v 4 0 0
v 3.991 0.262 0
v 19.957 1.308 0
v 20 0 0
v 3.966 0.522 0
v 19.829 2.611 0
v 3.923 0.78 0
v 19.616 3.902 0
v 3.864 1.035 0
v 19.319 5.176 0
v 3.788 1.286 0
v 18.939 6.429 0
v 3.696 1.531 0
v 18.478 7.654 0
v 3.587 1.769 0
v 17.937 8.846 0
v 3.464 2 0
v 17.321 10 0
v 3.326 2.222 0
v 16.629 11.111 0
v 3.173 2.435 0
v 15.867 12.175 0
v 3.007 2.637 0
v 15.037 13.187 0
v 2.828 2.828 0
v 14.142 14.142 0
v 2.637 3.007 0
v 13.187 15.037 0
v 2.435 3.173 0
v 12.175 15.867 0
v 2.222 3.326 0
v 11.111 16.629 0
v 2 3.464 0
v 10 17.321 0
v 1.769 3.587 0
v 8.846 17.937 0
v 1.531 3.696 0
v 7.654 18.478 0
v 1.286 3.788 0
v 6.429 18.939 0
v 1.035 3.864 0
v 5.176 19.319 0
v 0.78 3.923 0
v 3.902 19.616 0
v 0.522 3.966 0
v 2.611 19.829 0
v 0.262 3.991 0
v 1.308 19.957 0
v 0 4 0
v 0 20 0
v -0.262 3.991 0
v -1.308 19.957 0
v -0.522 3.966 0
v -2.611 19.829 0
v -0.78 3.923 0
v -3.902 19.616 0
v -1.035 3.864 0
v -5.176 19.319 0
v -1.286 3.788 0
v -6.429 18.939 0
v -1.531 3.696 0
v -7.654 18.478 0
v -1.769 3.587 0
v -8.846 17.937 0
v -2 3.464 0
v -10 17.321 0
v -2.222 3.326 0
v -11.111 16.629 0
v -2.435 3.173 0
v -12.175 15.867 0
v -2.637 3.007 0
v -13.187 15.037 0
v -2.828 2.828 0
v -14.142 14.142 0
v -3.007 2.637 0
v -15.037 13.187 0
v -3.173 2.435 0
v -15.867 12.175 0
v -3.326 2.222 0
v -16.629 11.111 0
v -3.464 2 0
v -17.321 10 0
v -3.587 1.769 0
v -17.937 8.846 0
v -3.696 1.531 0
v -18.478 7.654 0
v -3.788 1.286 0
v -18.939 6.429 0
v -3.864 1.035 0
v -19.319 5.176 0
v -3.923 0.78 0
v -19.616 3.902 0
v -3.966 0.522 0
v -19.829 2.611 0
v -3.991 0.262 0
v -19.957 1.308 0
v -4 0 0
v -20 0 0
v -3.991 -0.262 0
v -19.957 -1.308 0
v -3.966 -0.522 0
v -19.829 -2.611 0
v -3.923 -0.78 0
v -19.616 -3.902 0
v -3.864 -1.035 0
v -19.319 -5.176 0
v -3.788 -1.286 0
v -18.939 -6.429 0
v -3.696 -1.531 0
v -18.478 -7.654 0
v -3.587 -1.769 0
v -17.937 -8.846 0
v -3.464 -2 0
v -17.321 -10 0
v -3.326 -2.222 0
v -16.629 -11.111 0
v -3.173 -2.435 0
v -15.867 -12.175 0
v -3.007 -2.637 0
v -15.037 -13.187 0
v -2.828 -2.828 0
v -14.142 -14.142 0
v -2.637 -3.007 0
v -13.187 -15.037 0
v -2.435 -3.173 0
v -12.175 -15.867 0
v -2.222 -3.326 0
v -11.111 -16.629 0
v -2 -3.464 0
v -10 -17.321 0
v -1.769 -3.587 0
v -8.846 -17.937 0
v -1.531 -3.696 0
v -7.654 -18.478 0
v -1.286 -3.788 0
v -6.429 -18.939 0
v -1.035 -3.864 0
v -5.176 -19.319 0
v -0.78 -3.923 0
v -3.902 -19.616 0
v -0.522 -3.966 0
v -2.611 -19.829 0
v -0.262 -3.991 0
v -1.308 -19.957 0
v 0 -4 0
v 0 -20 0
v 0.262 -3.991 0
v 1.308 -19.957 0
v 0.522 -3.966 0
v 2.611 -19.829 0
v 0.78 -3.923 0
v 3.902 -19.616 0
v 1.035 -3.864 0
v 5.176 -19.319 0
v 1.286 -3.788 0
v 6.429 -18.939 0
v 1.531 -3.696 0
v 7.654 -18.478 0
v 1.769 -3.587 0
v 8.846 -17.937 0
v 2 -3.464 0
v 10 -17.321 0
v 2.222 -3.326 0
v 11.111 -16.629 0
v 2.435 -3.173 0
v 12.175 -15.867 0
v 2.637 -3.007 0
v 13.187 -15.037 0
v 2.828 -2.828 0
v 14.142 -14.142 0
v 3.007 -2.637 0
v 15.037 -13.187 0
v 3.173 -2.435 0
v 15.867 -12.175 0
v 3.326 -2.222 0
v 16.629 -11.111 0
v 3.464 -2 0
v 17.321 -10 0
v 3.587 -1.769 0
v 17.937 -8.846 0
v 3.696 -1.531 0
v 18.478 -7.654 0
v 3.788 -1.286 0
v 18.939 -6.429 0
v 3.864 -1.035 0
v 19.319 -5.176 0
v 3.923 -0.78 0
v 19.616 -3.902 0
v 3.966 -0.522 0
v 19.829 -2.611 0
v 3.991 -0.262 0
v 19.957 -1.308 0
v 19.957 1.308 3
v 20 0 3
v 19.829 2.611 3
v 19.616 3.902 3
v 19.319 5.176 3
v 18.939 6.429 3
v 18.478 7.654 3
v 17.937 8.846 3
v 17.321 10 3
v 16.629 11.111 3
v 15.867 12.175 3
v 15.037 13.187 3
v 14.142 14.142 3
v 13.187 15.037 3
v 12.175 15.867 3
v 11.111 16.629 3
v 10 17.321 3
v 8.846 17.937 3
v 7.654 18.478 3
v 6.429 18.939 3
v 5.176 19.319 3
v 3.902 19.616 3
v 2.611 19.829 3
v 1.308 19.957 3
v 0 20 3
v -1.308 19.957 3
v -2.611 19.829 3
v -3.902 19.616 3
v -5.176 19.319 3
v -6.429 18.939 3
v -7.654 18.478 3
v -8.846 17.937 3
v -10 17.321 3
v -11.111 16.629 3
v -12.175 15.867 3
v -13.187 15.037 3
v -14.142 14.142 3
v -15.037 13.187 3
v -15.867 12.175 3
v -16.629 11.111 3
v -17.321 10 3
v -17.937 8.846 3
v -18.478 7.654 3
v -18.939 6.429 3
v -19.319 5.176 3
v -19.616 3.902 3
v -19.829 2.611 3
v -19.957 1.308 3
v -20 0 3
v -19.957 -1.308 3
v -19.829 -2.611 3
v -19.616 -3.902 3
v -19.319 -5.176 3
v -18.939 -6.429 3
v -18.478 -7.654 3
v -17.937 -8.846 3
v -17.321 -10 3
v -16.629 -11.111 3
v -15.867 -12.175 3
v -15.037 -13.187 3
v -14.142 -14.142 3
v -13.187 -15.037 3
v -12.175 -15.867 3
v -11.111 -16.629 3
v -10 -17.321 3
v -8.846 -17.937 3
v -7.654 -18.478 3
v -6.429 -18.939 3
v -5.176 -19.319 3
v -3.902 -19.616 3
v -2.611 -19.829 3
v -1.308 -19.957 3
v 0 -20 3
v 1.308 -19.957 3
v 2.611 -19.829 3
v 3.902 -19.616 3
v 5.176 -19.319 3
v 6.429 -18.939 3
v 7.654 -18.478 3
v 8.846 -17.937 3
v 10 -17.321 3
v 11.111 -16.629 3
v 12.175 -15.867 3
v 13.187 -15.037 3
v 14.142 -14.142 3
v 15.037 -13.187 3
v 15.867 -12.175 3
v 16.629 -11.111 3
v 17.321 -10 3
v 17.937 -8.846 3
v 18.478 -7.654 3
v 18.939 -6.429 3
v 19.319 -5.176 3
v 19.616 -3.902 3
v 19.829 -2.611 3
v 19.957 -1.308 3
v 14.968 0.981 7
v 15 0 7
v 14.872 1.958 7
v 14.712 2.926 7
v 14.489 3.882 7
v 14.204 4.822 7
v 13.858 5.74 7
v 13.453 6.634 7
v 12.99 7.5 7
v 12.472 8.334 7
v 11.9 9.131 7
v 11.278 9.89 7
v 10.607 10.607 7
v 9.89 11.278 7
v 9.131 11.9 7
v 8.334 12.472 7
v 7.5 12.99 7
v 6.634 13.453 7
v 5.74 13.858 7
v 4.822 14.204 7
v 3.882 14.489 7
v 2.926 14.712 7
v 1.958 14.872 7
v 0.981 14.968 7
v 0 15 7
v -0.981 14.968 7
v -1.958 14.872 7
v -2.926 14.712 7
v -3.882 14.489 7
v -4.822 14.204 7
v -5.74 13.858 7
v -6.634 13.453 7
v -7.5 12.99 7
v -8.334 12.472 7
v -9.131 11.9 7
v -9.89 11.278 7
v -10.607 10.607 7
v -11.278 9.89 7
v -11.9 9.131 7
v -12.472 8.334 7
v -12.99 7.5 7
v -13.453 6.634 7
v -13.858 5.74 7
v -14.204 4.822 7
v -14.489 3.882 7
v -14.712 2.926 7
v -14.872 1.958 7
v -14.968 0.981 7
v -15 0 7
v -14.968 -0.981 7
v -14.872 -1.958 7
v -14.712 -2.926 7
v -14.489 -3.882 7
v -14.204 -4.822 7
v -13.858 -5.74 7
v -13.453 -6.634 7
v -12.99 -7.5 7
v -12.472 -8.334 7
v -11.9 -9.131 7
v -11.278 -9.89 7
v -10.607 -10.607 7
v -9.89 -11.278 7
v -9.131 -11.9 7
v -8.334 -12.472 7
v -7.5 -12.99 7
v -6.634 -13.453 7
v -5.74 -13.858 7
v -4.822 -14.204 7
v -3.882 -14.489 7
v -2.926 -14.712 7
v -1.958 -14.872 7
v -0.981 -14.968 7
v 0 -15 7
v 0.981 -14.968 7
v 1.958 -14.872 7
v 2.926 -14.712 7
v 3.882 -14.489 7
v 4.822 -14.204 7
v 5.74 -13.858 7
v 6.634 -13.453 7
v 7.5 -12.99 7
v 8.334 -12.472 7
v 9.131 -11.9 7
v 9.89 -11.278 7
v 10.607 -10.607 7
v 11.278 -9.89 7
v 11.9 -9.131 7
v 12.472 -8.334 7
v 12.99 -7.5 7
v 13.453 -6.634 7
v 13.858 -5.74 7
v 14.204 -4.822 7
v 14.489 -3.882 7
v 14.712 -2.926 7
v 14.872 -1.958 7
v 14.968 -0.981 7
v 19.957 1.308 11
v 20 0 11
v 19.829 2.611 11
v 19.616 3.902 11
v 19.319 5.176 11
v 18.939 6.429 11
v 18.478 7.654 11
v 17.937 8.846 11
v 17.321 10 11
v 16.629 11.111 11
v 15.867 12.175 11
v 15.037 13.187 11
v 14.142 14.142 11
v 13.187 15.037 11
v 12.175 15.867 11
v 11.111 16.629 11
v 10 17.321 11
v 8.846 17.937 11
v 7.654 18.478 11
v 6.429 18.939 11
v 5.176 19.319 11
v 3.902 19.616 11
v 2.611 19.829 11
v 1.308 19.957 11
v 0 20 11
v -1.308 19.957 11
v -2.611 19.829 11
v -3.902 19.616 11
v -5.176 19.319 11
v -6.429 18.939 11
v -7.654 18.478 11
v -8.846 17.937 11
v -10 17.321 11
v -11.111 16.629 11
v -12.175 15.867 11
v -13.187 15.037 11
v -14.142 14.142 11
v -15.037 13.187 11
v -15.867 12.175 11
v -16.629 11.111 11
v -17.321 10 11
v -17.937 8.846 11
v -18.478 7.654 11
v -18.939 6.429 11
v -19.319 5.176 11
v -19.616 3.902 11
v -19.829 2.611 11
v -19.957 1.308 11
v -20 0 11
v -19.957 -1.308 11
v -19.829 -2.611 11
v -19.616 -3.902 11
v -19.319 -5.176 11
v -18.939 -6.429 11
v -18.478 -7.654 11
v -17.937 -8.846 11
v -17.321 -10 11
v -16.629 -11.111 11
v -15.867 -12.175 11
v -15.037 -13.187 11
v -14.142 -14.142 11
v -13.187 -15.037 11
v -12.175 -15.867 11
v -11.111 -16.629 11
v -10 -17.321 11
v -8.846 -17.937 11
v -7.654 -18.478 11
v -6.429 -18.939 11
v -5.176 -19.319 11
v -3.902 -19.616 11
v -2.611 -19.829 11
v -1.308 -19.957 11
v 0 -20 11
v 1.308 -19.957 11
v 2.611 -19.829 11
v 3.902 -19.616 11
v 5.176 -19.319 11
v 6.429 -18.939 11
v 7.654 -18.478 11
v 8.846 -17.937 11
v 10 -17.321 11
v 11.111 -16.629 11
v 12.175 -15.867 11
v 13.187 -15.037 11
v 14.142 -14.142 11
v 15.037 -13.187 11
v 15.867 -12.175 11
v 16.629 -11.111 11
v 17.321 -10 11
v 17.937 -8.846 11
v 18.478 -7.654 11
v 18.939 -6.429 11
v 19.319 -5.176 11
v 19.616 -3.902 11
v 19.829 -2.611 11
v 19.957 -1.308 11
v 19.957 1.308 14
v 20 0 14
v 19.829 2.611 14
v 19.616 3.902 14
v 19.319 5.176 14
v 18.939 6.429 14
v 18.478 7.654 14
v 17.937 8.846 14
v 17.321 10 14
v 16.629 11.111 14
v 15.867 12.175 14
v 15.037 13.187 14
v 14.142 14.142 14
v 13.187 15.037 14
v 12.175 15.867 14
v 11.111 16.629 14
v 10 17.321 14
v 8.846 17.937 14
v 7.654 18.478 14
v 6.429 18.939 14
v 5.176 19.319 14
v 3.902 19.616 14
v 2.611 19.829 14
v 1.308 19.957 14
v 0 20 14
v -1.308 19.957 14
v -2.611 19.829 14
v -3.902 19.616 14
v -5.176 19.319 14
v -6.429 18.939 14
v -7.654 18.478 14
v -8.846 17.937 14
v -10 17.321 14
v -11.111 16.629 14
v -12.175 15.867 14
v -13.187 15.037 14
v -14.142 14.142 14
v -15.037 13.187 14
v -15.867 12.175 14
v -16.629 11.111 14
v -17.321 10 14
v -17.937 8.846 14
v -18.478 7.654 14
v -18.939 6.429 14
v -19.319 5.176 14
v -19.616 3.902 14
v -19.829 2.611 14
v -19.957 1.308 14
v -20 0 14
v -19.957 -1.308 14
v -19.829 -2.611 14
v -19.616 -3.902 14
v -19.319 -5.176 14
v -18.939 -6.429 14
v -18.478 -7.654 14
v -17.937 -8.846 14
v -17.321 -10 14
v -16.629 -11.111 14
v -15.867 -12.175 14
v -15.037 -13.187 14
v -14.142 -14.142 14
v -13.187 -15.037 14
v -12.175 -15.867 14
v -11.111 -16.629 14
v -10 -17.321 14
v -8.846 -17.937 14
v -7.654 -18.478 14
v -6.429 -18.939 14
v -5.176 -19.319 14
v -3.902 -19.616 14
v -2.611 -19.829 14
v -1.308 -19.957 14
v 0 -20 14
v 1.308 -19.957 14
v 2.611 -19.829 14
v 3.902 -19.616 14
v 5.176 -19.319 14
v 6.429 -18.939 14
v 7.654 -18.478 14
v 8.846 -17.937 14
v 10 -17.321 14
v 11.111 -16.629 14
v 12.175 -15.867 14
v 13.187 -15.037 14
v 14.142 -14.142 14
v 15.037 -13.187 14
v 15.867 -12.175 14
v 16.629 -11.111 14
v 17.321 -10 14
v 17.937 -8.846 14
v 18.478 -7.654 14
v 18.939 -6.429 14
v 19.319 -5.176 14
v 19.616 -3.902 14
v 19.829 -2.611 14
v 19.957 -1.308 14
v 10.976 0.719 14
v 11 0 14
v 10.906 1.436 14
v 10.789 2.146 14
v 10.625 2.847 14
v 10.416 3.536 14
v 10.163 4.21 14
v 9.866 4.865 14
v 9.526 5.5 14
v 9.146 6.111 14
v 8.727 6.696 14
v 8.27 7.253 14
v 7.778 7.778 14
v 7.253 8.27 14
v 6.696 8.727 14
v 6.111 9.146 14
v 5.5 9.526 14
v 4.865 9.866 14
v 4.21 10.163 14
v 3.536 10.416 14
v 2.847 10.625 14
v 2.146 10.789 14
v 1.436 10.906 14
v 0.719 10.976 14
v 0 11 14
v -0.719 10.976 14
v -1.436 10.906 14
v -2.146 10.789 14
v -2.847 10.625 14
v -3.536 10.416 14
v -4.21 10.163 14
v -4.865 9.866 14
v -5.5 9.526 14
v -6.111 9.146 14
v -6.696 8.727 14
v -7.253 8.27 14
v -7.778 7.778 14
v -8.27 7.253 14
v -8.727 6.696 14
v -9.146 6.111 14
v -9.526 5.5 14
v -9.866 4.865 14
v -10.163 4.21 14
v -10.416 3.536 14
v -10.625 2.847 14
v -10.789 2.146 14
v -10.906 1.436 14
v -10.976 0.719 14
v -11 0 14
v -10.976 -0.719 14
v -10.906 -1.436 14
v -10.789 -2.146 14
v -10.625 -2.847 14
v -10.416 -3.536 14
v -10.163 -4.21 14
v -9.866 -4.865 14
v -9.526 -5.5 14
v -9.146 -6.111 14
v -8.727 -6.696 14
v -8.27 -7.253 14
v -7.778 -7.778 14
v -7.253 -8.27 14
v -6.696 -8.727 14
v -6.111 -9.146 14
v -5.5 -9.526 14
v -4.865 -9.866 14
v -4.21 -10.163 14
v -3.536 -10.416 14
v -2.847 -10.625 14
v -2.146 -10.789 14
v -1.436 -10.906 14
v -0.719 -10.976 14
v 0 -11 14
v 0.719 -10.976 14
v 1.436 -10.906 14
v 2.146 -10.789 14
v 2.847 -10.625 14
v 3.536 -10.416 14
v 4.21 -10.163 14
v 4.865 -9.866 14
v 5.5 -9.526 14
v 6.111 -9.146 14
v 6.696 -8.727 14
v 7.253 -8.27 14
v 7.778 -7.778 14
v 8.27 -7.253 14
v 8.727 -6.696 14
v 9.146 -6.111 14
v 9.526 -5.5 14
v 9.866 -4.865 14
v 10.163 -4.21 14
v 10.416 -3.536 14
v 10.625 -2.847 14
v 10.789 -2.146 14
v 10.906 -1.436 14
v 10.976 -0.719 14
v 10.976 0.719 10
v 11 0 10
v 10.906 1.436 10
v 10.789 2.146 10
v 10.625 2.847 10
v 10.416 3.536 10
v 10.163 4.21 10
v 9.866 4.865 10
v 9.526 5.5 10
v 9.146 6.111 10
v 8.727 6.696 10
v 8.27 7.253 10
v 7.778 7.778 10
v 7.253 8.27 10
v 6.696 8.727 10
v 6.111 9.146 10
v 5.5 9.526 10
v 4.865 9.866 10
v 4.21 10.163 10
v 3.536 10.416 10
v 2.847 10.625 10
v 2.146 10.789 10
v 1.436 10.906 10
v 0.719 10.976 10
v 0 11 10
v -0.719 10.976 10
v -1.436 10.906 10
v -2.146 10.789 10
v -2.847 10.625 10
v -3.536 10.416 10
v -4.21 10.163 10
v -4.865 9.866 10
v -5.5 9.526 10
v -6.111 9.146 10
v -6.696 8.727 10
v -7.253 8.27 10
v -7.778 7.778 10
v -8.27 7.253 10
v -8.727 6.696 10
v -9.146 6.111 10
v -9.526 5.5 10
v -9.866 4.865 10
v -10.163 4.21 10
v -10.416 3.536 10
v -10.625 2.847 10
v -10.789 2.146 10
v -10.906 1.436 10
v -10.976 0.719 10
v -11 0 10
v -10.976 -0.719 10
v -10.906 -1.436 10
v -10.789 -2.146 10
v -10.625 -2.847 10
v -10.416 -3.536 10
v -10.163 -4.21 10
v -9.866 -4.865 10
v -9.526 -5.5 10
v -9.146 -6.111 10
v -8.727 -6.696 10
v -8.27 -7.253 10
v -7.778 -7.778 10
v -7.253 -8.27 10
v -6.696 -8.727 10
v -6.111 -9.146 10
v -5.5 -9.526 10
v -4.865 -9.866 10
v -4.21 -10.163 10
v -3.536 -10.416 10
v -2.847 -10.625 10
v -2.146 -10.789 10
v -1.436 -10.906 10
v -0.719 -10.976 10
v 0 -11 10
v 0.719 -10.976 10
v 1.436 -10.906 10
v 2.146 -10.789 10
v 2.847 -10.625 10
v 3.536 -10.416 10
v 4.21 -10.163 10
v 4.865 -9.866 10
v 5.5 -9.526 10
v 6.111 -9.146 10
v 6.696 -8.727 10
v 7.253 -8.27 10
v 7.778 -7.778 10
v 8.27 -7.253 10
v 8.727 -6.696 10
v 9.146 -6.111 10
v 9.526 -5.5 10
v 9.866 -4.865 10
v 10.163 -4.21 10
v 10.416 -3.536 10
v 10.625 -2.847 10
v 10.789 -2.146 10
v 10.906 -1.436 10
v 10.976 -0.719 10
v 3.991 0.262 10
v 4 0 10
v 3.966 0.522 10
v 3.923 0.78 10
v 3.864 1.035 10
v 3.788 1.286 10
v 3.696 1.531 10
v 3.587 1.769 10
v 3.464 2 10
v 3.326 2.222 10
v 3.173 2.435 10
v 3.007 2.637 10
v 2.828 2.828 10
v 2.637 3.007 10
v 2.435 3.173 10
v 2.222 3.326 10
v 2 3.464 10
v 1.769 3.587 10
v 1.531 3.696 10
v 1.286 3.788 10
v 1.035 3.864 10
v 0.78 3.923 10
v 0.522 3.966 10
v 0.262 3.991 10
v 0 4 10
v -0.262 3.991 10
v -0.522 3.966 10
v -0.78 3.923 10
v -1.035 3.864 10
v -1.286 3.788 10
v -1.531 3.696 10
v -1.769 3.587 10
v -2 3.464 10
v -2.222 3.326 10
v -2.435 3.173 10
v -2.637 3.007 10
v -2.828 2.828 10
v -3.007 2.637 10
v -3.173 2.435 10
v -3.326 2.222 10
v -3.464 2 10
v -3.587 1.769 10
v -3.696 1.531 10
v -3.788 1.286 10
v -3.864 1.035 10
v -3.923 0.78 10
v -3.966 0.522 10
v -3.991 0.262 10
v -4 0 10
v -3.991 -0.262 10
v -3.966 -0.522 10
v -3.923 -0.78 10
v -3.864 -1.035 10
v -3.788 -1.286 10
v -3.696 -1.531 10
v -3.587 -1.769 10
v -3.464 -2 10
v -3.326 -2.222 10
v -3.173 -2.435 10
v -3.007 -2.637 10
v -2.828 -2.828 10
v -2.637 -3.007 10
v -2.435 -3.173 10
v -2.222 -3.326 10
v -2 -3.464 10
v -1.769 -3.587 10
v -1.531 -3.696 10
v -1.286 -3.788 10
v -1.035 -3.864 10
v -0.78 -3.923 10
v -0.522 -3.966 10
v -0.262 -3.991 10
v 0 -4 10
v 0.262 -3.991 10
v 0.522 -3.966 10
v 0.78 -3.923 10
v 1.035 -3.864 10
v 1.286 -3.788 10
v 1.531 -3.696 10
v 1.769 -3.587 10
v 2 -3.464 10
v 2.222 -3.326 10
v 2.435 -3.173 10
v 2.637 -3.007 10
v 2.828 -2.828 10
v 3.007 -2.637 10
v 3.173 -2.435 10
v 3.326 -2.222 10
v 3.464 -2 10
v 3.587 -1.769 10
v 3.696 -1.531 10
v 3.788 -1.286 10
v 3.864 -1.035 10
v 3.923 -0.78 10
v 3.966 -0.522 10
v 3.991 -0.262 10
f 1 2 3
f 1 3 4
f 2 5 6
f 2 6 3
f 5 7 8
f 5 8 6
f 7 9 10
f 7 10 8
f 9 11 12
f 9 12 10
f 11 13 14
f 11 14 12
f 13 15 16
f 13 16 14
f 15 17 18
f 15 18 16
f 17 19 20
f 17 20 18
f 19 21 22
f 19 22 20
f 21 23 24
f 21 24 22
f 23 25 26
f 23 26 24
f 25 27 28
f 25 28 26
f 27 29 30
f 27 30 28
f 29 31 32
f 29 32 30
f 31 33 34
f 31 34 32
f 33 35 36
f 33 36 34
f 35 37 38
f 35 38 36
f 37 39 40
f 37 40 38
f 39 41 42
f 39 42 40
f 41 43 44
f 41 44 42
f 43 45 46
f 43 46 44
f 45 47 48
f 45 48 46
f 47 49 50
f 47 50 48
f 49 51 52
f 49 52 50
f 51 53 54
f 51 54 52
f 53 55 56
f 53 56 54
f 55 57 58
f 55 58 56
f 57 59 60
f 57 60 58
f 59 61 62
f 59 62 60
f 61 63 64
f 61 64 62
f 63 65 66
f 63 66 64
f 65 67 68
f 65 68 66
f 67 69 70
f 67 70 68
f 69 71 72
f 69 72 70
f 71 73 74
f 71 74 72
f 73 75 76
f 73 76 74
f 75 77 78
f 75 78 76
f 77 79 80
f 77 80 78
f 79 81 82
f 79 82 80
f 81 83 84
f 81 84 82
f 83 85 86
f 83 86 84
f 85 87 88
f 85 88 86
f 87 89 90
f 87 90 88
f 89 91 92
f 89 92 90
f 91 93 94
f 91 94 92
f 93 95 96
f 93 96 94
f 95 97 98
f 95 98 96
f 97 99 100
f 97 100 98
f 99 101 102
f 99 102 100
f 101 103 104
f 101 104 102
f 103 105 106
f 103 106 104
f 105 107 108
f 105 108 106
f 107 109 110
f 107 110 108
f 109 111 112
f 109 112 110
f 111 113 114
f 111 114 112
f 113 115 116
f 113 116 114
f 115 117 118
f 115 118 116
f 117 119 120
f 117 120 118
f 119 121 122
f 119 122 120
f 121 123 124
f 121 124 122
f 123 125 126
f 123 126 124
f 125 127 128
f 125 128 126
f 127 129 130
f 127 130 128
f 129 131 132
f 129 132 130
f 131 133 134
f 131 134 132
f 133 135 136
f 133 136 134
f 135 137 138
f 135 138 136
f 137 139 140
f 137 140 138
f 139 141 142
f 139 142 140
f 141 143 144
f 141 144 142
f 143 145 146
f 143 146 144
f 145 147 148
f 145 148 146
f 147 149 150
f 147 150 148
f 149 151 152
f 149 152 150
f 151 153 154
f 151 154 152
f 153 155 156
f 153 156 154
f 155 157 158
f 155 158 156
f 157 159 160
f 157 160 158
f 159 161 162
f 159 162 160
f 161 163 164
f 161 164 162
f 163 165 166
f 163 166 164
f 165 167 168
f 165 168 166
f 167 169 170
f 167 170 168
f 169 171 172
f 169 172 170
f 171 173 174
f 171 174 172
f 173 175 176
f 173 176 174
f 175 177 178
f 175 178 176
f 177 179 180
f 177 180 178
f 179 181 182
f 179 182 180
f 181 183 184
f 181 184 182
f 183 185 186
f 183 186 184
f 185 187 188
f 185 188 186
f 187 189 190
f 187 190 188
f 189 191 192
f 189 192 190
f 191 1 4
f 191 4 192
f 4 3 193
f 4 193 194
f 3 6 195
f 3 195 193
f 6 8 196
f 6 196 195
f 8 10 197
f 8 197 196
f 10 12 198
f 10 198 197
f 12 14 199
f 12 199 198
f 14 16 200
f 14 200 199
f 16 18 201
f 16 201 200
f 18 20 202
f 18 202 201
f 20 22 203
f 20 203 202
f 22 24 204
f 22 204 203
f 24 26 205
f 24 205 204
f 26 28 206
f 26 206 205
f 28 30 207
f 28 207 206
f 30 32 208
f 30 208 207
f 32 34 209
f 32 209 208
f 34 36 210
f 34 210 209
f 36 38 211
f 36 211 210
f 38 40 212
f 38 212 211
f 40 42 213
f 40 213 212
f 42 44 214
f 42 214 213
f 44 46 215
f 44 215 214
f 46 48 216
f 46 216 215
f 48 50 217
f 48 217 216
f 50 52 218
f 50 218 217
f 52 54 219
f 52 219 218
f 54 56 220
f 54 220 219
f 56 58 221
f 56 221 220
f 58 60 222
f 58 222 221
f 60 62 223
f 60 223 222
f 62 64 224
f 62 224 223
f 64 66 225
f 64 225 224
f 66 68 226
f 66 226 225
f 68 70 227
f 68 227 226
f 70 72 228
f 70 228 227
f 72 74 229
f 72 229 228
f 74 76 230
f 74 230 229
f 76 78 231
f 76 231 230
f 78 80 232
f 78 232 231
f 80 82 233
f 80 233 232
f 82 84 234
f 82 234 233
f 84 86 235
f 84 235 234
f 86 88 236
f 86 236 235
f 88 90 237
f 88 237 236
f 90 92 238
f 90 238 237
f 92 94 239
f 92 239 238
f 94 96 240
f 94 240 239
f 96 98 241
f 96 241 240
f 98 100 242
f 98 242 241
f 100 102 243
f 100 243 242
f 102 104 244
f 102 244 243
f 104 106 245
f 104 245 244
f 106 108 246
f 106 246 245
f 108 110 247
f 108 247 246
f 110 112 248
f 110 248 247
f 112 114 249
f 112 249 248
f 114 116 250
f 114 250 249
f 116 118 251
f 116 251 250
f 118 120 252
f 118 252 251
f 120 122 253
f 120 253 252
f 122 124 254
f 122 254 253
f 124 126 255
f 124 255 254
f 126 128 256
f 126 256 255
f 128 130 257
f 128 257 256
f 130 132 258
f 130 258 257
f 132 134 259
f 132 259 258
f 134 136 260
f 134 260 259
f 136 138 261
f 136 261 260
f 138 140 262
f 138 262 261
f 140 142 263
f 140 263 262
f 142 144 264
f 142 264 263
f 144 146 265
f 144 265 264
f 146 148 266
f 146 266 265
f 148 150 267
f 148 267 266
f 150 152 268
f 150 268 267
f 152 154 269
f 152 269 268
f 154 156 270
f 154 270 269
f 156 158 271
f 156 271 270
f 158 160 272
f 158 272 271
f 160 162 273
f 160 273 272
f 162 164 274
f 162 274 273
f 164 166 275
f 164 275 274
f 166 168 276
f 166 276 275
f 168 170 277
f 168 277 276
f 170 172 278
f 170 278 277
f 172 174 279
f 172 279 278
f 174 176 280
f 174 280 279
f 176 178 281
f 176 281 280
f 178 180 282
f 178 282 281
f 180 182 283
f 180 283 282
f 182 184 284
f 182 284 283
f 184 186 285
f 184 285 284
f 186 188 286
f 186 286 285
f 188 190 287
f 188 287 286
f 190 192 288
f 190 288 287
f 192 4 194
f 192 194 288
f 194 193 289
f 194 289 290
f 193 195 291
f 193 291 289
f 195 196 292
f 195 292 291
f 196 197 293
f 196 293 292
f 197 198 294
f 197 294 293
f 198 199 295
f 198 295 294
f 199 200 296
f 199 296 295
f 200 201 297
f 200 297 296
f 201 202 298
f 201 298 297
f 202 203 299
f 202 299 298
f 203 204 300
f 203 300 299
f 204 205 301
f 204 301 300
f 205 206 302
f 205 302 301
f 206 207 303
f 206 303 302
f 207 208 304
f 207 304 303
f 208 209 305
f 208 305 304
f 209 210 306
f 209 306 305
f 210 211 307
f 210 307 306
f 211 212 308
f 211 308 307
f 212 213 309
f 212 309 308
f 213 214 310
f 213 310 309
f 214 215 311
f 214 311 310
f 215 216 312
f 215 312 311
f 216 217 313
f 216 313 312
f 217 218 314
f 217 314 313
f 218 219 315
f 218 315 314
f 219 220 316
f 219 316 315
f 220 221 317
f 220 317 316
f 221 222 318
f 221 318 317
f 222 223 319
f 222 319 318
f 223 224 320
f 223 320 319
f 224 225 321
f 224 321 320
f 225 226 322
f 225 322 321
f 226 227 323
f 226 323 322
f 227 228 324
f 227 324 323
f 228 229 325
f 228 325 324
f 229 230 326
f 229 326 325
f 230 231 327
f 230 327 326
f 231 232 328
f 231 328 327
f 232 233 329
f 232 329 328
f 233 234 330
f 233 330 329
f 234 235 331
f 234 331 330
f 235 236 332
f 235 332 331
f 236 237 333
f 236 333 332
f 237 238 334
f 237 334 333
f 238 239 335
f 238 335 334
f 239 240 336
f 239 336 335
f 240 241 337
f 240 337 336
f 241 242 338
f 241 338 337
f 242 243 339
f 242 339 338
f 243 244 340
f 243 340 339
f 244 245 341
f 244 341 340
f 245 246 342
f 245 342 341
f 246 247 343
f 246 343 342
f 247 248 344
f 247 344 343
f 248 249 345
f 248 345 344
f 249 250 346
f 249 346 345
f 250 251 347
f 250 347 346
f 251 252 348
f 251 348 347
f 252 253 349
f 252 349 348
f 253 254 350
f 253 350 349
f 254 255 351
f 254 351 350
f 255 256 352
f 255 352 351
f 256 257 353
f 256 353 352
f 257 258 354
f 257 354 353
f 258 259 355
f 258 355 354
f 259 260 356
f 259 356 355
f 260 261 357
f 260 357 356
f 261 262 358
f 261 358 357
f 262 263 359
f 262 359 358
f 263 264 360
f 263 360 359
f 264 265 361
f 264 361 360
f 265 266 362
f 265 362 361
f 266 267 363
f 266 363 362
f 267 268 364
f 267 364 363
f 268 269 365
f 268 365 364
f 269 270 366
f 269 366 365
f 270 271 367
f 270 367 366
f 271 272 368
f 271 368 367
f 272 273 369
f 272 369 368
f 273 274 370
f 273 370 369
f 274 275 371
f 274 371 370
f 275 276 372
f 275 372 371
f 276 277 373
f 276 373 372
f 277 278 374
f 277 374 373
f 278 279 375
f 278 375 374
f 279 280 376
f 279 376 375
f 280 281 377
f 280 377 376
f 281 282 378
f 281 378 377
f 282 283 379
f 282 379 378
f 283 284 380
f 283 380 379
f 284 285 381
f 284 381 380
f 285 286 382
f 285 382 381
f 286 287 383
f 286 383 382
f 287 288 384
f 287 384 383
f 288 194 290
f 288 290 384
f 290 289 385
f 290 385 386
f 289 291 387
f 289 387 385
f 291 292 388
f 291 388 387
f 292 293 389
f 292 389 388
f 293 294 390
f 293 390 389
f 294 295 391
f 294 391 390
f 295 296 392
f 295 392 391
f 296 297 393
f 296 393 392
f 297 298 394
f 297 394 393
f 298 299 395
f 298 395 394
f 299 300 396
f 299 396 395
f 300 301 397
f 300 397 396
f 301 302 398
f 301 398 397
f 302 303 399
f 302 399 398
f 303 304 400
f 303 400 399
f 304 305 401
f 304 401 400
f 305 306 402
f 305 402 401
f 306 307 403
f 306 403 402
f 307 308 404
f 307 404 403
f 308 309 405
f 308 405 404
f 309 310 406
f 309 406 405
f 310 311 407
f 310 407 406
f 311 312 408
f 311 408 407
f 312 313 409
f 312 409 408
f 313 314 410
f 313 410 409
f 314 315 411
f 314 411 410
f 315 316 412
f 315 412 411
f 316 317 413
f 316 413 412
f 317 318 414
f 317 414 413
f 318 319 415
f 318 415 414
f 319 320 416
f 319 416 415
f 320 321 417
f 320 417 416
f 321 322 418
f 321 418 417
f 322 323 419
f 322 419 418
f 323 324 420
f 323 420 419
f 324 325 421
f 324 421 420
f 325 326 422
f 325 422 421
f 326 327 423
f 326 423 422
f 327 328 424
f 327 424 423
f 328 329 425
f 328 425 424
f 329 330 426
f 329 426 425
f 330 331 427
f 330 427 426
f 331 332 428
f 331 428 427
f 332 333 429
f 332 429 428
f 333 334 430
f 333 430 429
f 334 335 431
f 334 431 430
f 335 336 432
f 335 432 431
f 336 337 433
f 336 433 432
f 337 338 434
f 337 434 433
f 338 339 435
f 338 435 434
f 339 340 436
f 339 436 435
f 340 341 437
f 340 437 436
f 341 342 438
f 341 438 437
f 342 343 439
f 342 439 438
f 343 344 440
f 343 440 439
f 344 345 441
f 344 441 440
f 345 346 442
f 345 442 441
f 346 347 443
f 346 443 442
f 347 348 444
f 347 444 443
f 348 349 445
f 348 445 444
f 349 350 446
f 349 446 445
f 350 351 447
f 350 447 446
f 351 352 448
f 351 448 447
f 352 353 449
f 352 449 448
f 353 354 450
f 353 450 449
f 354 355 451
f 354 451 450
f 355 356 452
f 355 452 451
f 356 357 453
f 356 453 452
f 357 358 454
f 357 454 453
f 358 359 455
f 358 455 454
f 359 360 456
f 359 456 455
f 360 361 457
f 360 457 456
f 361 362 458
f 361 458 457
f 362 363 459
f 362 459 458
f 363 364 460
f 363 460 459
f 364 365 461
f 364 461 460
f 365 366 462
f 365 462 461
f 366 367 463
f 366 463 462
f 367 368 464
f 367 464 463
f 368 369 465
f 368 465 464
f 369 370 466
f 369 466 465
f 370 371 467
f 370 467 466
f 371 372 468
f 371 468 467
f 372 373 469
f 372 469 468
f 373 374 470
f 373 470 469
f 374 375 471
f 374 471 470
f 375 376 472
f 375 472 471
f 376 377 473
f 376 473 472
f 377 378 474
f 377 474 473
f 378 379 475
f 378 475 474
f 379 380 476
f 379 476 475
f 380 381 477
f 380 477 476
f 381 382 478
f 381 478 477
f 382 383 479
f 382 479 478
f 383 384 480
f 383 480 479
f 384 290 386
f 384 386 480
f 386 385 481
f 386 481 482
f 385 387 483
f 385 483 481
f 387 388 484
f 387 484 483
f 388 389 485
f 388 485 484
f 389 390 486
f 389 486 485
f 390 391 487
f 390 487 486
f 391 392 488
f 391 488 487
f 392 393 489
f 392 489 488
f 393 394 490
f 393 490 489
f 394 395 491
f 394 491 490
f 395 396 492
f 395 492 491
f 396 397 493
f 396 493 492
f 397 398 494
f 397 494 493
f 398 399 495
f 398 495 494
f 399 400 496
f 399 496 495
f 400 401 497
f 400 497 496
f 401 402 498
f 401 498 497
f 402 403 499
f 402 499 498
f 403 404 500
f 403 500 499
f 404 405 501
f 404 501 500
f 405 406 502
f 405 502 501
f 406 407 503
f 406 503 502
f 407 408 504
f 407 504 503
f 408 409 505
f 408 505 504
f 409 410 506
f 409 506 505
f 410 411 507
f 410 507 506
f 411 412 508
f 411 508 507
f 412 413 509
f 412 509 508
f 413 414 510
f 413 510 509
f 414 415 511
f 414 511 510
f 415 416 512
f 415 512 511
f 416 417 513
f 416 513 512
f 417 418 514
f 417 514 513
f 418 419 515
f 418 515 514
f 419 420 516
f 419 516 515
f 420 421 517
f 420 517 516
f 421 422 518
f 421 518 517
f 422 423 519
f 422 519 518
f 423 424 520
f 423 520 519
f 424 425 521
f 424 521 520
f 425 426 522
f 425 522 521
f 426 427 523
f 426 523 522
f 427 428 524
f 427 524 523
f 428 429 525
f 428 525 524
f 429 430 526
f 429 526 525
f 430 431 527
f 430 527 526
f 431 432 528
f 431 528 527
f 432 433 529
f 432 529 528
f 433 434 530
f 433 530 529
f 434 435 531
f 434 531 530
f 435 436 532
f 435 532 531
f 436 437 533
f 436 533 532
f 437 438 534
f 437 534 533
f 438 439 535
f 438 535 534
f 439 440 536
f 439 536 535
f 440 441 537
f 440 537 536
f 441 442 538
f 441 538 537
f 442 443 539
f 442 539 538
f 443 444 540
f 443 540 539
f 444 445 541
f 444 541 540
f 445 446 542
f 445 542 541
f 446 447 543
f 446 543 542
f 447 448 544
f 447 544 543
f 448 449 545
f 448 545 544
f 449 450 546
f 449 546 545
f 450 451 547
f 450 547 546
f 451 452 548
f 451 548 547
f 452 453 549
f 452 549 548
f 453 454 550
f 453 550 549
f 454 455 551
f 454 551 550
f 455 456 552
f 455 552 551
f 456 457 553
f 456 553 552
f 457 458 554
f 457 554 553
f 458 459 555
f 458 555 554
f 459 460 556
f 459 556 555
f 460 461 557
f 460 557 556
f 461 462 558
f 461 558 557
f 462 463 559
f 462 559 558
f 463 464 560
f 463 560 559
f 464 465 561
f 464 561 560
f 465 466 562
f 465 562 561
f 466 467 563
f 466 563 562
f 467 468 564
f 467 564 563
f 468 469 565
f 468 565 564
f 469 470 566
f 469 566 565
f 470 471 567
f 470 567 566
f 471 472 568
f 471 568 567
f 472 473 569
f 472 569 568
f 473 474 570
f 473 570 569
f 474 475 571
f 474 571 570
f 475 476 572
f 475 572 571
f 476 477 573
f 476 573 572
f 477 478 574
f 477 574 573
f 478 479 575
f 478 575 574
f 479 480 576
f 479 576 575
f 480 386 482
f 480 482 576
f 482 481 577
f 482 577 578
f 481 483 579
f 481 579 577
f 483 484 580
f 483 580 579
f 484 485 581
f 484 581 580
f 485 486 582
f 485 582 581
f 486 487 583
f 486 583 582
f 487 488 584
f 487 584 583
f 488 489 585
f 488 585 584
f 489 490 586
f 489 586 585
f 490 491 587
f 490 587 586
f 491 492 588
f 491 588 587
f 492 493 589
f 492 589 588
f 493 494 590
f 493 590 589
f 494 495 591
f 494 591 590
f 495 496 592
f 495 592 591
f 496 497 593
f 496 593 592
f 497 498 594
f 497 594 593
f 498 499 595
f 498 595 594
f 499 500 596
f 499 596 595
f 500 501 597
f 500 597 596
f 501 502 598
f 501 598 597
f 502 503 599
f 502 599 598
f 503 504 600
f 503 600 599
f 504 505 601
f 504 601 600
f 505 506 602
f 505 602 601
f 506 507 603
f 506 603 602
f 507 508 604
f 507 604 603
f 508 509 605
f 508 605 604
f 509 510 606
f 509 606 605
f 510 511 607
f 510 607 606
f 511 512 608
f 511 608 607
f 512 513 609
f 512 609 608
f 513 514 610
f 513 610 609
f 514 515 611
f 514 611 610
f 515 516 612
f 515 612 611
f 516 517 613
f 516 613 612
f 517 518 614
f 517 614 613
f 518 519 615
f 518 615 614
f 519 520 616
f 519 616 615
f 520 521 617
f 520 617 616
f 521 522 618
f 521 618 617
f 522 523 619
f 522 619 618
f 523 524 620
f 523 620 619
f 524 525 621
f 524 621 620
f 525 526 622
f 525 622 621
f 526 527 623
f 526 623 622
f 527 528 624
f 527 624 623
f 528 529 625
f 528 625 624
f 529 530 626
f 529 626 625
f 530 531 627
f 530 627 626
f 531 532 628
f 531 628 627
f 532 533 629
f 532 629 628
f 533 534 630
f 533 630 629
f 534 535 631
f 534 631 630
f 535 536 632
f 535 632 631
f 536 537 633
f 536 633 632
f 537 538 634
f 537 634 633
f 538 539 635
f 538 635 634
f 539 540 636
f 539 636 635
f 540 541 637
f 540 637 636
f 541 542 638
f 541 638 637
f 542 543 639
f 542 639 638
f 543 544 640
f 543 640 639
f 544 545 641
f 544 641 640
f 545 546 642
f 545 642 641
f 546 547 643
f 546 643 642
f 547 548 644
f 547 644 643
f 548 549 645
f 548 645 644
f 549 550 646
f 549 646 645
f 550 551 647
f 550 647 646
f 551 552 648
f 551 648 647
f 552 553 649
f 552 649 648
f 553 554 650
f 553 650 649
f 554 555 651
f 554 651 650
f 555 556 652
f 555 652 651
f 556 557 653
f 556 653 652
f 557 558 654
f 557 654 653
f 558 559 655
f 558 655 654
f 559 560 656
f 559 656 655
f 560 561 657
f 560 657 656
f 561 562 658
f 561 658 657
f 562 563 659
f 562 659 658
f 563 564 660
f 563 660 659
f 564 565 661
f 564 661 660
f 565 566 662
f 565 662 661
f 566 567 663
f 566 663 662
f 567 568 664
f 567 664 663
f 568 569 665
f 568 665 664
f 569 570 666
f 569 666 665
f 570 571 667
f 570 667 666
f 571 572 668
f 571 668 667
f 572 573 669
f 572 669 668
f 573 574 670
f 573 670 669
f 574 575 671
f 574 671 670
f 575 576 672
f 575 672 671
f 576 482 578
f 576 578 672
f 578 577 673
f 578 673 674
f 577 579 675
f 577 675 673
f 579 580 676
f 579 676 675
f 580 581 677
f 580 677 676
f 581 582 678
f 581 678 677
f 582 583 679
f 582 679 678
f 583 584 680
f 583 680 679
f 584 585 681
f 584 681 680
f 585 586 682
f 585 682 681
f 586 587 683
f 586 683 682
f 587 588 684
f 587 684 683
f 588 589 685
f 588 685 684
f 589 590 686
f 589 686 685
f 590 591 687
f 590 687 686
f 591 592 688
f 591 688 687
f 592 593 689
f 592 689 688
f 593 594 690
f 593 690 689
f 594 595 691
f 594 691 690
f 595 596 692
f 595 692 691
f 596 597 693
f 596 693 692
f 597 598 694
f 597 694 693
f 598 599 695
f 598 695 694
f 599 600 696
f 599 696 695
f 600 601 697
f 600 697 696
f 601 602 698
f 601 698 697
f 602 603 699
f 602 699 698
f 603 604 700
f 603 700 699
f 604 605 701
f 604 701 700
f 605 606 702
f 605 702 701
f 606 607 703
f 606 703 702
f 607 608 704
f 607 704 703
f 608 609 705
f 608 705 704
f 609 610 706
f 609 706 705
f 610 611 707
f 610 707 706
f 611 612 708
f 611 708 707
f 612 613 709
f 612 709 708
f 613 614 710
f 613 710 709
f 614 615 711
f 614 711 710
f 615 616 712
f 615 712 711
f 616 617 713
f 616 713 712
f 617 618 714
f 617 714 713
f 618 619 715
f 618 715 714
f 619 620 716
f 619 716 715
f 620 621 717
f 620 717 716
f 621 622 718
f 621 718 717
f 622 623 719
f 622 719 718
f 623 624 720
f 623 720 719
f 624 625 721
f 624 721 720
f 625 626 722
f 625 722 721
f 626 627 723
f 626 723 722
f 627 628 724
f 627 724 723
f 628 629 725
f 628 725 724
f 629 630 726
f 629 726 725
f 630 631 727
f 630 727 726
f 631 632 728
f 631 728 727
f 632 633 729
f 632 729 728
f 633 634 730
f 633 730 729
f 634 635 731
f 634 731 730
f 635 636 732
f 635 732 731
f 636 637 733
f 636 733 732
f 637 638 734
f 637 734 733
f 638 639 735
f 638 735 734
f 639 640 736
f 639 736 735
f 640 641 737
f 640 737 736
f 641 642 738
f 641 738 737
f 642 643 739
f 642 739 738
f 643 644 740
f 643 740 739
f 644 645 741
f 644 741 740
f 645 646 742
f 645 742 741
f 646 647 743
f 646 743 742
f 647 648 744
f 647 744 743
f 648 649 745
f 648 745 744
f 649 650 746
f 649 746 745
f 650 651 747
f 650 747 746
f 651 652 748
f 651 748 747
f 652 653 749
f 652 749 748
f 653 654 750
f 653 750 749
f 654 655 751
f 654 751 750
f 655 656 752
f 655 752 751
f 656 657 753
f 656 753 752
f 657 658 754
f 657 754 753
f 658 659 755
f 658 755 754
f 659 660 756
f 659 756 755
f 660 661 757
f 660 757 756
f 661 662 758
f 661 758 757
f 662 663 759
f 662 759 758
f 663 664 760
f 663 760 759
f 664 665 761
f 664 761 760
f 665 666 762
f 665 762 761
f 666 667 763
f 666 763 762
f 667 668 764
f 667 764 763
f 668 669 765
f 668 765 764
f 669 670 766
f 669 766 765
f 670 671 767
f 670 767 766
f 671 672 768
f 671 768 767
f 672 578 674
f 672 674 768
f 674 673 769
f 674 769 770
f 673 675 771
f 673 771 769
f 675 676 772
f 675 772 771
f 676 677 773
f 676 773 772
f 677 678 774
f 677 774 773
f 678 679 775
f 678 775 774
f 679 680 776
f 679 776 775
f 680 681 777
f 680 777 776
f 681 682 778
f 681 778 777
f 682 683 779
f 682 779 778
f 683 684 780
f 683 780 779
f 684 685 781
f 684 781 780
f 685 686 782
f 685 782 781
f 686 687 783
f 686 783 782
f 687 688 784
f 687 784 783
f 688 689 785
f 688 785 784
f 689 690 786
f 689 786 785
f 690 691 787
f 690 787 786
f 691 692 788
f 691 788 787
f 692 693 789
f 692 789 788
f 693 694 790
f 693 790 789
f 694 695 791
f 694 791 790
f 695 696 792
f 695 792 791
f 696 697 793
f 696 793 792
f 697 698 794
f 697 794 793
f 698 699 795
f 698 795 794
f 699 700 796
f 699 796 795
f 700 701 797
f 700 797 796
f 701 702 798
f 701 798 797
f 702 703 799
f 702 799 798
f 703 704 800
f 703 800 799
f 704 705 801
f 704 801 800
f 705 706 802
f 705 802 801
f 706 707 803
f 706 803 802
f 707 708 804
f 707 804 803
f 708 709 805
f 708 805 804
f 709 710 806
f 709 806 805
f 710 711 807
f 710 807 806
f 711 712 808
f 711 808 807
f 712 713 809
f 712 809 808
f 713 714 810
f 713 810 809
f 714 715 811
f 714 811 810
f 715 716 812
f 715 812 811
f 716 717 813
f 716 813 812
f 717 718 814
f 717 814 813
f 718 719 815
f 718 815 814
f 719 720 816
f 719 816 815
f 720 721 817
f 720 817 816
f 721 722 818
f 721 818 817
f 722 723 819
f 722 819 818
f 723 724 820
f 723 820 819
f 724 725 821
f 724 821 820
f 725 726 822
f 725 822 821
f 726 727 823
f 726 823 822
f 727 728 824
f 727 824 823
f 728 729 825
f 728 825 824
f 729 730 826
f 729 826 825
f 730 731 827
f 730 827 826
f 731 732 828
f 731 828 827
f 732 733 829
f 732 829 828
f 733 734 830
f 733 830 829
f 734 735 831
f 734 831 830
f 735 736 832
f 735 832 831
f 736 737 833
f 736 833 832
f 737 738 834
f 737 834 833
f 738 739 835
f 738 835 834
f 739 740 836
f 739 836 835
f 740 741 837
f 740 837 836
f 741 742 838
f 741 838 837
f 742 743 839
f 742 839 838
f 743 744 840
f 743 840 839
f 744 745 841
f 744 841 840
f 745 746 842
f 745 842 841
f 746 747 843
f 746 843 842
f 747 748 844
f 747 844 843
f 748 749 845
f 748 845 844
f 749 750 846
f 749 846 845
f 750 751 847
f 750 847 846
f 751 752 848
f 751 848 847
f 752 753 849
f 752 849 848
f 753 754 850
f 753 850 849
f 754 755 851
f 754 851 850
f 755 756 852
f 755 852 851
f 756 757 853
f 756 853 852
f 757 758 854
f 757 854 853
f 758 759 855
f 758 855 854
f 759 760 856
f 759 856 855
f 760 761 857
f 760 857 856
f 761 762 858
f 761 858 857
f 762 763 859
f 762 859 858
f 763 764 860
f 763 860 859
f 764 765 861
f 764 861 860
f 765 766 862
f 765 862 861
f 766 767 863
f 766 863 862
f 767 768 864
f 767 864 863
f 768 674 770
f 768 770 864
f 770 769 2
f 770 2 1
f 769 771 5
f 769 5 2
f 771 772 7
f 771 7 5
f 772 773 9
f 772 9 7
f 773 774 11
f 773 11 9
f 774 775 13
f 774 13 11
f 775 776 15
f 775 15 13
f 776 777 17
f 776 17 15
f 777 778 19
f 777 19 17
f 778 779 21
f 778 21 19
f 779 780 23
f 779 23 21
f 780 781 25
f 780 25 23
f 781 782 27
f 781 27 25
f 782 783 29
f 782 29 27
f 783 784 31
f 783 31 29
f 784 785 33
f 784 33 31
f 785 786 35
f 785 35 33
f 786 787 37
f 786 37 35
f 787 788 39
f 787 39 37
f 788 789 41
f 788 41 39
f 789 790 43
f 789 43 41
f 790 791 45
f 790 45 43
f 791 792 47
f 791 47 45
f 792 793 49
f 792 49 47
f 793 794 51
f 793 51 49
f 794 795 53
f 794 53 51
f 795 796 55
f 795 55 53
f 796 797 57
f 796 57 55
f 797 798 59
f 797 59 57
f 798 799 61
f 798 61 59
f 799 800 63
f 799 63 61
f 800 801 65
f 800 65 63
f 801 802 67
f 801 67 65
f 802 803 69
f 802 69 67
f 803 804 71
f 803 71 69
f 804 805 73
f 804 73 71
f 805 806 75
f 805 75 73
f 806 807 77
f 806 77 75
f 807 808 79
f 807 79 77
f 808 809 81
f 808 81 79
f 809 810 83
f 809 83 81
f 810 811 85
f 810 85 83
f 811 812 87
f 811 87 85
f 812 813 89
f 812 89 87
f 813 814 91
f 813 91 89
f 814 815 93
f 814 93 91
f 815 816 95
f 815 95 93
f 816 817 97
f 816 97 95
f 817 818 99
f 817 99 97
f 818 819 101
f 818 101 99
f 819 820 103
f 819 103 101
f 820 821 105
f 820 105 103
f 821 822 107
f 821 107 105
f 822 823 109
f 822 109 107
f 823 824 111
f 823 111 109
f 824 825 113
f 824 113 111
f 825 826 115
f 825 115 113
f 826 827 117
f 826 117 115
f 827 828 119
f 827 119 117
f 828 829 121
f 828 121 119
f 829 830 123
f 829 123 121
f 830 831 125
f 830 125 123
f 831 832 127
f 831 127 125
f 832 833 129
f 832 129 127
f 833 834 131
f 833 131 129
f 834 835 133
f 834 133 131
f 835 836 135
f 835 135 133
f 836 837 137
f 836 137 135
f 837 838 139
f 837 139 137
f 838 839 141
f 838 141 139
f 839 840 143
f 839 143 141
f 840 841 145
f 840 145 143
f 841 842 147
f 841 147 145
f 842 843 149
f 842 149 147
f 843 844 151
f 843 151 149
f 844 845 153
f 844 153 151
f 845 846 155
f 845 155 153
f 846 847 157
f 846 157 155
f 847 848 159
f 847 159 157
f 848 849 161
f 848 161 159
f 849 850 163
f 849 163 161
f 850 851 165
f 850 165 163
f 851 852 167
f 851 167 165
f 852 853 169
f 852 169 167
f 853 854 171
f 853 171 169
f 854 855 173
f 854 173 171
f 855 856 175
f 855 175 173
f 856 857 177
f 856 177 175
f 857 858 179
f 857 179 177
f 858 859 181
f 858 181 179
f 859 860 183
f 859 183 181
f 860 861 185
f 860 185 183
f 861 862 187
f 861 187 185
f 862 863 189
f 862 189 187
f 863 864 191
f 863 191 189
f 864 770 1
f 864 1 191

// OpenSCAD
// Original MechIntel educational model. CC0-1.0. Units: mm.
// Not a standardized or load-rated component.
$fn=96;
// Section points: [radius, height], mm. Edit to change the profile.
section=[[4, 0], [20, 0], [20, 3], [15, 7], [20, 11], [20, 14], [11, 14], [11, 10], [4, 10]];
rotate_extrude($fn=96) polygon(points=section);
